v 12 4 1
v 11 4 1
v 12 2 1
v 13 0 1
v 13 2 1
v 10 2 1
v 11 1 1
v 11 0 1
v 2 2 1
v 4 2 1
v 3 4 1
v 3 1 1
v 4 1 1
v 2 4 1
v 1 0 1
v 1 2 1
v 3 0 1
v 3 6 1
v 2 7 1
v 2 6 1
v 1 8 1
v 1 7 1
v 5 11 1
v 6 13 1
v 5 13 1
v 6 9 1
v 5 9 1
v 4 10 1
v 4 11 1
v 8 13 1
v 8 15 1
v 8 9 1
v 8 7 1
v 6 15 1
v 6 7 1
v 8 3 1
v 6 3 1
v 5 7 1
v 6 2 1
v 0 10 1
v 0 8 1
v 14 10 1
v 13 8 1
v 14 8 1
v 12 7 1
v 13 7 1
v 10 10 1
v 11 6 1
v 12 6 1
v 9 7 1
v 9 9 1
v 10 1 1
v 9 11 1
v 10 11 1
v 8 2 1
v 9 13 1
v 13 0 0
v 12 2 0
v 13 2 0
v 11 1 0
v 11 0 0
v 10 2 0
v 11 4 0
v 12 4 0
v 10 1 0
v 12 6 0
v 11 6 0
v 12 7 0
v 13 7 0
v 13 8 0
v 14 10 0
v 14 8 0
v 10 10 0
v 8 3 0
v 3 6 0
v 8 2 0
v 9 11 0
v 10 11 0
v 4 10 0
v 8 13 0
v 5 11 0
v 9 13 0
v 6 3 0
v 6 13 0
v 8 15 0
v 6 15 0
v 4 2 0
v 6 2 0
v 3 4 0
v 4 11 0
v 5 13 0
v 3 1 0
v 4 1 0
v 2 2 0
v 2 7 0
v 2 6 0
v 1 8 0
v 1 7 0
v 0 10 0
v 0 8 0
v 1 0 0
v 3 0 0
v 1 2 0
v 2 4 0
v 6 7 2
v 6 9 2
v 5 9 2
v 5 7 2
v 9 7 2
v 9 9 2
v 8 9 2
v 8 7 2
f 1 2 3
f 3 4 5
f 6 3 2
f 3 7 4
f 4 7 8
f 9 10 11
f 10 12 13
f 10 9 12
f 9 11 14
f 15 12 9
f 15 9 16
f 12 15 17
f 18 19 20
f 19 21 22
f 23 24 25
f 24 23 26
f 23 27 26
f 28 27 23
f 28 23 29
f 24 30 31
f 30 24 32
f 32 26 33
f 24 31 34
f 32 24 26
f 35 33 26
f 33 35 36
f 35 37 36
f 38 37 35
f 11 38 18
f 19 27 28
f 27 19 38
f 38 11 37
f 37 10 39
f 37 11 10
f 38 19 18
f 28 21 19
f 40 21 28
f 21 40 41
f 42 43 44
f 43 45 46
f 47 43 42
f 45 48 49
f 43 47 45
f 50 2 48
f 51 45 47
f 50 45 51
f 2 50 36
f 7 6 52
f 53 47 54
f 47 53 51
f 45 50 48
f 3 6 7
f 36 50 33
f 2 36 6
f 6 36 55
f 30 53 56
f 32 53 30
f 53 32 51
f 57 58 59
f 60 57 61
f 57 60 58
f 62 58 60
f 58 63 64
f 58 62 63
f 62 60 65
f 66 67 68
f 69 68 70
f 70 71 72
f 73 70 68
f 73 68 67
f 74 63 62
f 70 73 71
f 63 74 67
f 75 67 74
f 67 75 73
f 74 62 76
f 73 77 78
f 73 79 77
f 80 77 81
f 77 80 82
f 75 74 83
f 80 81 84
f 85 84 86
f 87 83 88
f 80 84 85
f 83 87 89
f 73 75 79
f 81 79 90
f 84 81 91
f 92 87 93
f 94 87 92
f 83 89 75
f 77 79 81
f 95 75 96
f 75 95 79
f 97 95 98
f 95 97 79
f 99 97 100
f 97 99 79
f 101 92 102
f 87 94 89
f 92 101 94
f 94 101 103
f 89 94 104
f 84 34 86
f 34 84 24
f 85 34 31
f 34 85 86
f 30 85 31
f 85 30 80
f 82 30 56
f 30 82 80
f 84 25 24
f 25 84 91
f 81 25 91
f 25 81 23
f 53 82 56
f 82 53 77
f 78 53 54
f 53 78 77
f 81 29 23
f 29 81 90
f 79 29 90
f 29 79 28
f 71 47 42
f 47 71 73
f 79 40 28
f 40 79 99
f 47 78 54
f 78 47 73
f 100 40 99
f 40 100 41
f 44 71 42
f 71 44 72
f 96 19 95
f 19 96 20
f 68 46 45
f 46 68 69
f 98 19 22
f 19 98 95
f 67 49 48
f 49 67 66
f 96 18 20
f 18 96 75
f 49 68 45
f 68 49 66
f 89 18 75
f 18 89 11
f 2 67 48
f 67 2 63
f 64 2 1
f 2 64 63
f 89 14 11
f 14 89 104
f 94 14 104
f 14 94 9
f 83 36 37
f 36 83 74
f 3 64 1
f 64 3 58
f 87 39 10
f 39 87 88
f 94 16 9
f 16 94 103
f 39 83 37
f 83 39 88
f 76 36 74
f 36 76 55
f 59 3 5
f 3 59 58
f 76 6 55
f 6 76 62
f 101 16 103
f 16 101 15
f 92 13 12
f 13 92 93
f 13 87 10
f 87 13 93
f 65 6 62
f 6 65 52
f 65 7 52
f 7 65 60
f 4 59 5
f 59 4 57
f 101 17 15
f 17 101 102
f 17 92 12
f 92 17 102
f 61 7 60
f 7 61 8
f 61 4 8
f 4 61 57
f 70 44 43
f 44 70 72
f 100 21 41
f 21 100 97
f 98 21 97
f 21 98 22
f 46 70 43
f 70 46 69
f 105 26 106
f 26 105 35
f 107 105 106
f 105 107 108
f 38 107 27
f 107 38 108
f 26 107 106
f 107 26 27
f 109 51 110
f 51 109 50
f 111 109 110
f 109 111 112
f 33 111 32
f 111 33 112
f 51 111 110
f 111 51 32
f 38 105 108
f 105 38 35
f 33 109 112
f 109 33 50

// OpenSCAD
/*
 * 3D Pixel Art - Star 4
 * Copyright (c) 2019 Anar Software LLC. < http://anars.com >
 *
 * This program is free software: you can redistribute it and/or modify it under
 * the terms of the GNU General Public License as published by the Free Software
 * Foundation, either version 3 of the License, or (at your option) any later
 * version.
 *
 * This program is distributed in the hope that it will be useful, but WITHOUT
 * ANY WARRANTY; without even the implied warranty of MERCHANTABILITY or FITNESS
 * FOR A PARTICULAR PURPOSE. See the GNU General Public License for more details.
 *
 * You should have received a copy of the GNU General Public License along with
 * this program. If not, see < http://www.gnu.org/licenses/ >
 *
 */

/* [Global] */

/* [Pixel Settings] */

// Pixel Length (X)
pixel_length = 1;

// Pixel Width (Y)
pixel_width = 1;

// Pixel Height (Z)
pixel_height = 1;

/* [Hidden] */

data=[[
     "      XX",
     "      XX",
     "     XXXX",
     "     XXXX",
     "    XXXXXX",
     "XXXXXXXXXXXXXX",
     "XXXXXXXXXXXXXX",
     " XXXXXXXXXXXX",
     "  XXXXXXXXXX",
     "   XXXXXXXX",
     "   XXXXXXXX",
     "  XXXXXXXXXX",
     "  XXXX  XXXX",
     " XXX      XXX",
     " XX        XX"
     ],[
     "     X  X",
     "     X  X",
     "",
     "",
     "",
     "",
     "",
     "",
     ""]];

for (z = [0 : len(data) - 1])
    for (y = [0 : len(data[z]) - 1])
        if (len(data[z][y]) > 0)
            for (x = [0 : len(data[z][y]) - 1])
                if (data[z][y][x] == "X")
                    translate([x * pixel_length, (len(data[z]) - 1 - y) * pixel_width, z * pixel_height])
                        cube([pixel_length, pixel_width, pixel_height]);
